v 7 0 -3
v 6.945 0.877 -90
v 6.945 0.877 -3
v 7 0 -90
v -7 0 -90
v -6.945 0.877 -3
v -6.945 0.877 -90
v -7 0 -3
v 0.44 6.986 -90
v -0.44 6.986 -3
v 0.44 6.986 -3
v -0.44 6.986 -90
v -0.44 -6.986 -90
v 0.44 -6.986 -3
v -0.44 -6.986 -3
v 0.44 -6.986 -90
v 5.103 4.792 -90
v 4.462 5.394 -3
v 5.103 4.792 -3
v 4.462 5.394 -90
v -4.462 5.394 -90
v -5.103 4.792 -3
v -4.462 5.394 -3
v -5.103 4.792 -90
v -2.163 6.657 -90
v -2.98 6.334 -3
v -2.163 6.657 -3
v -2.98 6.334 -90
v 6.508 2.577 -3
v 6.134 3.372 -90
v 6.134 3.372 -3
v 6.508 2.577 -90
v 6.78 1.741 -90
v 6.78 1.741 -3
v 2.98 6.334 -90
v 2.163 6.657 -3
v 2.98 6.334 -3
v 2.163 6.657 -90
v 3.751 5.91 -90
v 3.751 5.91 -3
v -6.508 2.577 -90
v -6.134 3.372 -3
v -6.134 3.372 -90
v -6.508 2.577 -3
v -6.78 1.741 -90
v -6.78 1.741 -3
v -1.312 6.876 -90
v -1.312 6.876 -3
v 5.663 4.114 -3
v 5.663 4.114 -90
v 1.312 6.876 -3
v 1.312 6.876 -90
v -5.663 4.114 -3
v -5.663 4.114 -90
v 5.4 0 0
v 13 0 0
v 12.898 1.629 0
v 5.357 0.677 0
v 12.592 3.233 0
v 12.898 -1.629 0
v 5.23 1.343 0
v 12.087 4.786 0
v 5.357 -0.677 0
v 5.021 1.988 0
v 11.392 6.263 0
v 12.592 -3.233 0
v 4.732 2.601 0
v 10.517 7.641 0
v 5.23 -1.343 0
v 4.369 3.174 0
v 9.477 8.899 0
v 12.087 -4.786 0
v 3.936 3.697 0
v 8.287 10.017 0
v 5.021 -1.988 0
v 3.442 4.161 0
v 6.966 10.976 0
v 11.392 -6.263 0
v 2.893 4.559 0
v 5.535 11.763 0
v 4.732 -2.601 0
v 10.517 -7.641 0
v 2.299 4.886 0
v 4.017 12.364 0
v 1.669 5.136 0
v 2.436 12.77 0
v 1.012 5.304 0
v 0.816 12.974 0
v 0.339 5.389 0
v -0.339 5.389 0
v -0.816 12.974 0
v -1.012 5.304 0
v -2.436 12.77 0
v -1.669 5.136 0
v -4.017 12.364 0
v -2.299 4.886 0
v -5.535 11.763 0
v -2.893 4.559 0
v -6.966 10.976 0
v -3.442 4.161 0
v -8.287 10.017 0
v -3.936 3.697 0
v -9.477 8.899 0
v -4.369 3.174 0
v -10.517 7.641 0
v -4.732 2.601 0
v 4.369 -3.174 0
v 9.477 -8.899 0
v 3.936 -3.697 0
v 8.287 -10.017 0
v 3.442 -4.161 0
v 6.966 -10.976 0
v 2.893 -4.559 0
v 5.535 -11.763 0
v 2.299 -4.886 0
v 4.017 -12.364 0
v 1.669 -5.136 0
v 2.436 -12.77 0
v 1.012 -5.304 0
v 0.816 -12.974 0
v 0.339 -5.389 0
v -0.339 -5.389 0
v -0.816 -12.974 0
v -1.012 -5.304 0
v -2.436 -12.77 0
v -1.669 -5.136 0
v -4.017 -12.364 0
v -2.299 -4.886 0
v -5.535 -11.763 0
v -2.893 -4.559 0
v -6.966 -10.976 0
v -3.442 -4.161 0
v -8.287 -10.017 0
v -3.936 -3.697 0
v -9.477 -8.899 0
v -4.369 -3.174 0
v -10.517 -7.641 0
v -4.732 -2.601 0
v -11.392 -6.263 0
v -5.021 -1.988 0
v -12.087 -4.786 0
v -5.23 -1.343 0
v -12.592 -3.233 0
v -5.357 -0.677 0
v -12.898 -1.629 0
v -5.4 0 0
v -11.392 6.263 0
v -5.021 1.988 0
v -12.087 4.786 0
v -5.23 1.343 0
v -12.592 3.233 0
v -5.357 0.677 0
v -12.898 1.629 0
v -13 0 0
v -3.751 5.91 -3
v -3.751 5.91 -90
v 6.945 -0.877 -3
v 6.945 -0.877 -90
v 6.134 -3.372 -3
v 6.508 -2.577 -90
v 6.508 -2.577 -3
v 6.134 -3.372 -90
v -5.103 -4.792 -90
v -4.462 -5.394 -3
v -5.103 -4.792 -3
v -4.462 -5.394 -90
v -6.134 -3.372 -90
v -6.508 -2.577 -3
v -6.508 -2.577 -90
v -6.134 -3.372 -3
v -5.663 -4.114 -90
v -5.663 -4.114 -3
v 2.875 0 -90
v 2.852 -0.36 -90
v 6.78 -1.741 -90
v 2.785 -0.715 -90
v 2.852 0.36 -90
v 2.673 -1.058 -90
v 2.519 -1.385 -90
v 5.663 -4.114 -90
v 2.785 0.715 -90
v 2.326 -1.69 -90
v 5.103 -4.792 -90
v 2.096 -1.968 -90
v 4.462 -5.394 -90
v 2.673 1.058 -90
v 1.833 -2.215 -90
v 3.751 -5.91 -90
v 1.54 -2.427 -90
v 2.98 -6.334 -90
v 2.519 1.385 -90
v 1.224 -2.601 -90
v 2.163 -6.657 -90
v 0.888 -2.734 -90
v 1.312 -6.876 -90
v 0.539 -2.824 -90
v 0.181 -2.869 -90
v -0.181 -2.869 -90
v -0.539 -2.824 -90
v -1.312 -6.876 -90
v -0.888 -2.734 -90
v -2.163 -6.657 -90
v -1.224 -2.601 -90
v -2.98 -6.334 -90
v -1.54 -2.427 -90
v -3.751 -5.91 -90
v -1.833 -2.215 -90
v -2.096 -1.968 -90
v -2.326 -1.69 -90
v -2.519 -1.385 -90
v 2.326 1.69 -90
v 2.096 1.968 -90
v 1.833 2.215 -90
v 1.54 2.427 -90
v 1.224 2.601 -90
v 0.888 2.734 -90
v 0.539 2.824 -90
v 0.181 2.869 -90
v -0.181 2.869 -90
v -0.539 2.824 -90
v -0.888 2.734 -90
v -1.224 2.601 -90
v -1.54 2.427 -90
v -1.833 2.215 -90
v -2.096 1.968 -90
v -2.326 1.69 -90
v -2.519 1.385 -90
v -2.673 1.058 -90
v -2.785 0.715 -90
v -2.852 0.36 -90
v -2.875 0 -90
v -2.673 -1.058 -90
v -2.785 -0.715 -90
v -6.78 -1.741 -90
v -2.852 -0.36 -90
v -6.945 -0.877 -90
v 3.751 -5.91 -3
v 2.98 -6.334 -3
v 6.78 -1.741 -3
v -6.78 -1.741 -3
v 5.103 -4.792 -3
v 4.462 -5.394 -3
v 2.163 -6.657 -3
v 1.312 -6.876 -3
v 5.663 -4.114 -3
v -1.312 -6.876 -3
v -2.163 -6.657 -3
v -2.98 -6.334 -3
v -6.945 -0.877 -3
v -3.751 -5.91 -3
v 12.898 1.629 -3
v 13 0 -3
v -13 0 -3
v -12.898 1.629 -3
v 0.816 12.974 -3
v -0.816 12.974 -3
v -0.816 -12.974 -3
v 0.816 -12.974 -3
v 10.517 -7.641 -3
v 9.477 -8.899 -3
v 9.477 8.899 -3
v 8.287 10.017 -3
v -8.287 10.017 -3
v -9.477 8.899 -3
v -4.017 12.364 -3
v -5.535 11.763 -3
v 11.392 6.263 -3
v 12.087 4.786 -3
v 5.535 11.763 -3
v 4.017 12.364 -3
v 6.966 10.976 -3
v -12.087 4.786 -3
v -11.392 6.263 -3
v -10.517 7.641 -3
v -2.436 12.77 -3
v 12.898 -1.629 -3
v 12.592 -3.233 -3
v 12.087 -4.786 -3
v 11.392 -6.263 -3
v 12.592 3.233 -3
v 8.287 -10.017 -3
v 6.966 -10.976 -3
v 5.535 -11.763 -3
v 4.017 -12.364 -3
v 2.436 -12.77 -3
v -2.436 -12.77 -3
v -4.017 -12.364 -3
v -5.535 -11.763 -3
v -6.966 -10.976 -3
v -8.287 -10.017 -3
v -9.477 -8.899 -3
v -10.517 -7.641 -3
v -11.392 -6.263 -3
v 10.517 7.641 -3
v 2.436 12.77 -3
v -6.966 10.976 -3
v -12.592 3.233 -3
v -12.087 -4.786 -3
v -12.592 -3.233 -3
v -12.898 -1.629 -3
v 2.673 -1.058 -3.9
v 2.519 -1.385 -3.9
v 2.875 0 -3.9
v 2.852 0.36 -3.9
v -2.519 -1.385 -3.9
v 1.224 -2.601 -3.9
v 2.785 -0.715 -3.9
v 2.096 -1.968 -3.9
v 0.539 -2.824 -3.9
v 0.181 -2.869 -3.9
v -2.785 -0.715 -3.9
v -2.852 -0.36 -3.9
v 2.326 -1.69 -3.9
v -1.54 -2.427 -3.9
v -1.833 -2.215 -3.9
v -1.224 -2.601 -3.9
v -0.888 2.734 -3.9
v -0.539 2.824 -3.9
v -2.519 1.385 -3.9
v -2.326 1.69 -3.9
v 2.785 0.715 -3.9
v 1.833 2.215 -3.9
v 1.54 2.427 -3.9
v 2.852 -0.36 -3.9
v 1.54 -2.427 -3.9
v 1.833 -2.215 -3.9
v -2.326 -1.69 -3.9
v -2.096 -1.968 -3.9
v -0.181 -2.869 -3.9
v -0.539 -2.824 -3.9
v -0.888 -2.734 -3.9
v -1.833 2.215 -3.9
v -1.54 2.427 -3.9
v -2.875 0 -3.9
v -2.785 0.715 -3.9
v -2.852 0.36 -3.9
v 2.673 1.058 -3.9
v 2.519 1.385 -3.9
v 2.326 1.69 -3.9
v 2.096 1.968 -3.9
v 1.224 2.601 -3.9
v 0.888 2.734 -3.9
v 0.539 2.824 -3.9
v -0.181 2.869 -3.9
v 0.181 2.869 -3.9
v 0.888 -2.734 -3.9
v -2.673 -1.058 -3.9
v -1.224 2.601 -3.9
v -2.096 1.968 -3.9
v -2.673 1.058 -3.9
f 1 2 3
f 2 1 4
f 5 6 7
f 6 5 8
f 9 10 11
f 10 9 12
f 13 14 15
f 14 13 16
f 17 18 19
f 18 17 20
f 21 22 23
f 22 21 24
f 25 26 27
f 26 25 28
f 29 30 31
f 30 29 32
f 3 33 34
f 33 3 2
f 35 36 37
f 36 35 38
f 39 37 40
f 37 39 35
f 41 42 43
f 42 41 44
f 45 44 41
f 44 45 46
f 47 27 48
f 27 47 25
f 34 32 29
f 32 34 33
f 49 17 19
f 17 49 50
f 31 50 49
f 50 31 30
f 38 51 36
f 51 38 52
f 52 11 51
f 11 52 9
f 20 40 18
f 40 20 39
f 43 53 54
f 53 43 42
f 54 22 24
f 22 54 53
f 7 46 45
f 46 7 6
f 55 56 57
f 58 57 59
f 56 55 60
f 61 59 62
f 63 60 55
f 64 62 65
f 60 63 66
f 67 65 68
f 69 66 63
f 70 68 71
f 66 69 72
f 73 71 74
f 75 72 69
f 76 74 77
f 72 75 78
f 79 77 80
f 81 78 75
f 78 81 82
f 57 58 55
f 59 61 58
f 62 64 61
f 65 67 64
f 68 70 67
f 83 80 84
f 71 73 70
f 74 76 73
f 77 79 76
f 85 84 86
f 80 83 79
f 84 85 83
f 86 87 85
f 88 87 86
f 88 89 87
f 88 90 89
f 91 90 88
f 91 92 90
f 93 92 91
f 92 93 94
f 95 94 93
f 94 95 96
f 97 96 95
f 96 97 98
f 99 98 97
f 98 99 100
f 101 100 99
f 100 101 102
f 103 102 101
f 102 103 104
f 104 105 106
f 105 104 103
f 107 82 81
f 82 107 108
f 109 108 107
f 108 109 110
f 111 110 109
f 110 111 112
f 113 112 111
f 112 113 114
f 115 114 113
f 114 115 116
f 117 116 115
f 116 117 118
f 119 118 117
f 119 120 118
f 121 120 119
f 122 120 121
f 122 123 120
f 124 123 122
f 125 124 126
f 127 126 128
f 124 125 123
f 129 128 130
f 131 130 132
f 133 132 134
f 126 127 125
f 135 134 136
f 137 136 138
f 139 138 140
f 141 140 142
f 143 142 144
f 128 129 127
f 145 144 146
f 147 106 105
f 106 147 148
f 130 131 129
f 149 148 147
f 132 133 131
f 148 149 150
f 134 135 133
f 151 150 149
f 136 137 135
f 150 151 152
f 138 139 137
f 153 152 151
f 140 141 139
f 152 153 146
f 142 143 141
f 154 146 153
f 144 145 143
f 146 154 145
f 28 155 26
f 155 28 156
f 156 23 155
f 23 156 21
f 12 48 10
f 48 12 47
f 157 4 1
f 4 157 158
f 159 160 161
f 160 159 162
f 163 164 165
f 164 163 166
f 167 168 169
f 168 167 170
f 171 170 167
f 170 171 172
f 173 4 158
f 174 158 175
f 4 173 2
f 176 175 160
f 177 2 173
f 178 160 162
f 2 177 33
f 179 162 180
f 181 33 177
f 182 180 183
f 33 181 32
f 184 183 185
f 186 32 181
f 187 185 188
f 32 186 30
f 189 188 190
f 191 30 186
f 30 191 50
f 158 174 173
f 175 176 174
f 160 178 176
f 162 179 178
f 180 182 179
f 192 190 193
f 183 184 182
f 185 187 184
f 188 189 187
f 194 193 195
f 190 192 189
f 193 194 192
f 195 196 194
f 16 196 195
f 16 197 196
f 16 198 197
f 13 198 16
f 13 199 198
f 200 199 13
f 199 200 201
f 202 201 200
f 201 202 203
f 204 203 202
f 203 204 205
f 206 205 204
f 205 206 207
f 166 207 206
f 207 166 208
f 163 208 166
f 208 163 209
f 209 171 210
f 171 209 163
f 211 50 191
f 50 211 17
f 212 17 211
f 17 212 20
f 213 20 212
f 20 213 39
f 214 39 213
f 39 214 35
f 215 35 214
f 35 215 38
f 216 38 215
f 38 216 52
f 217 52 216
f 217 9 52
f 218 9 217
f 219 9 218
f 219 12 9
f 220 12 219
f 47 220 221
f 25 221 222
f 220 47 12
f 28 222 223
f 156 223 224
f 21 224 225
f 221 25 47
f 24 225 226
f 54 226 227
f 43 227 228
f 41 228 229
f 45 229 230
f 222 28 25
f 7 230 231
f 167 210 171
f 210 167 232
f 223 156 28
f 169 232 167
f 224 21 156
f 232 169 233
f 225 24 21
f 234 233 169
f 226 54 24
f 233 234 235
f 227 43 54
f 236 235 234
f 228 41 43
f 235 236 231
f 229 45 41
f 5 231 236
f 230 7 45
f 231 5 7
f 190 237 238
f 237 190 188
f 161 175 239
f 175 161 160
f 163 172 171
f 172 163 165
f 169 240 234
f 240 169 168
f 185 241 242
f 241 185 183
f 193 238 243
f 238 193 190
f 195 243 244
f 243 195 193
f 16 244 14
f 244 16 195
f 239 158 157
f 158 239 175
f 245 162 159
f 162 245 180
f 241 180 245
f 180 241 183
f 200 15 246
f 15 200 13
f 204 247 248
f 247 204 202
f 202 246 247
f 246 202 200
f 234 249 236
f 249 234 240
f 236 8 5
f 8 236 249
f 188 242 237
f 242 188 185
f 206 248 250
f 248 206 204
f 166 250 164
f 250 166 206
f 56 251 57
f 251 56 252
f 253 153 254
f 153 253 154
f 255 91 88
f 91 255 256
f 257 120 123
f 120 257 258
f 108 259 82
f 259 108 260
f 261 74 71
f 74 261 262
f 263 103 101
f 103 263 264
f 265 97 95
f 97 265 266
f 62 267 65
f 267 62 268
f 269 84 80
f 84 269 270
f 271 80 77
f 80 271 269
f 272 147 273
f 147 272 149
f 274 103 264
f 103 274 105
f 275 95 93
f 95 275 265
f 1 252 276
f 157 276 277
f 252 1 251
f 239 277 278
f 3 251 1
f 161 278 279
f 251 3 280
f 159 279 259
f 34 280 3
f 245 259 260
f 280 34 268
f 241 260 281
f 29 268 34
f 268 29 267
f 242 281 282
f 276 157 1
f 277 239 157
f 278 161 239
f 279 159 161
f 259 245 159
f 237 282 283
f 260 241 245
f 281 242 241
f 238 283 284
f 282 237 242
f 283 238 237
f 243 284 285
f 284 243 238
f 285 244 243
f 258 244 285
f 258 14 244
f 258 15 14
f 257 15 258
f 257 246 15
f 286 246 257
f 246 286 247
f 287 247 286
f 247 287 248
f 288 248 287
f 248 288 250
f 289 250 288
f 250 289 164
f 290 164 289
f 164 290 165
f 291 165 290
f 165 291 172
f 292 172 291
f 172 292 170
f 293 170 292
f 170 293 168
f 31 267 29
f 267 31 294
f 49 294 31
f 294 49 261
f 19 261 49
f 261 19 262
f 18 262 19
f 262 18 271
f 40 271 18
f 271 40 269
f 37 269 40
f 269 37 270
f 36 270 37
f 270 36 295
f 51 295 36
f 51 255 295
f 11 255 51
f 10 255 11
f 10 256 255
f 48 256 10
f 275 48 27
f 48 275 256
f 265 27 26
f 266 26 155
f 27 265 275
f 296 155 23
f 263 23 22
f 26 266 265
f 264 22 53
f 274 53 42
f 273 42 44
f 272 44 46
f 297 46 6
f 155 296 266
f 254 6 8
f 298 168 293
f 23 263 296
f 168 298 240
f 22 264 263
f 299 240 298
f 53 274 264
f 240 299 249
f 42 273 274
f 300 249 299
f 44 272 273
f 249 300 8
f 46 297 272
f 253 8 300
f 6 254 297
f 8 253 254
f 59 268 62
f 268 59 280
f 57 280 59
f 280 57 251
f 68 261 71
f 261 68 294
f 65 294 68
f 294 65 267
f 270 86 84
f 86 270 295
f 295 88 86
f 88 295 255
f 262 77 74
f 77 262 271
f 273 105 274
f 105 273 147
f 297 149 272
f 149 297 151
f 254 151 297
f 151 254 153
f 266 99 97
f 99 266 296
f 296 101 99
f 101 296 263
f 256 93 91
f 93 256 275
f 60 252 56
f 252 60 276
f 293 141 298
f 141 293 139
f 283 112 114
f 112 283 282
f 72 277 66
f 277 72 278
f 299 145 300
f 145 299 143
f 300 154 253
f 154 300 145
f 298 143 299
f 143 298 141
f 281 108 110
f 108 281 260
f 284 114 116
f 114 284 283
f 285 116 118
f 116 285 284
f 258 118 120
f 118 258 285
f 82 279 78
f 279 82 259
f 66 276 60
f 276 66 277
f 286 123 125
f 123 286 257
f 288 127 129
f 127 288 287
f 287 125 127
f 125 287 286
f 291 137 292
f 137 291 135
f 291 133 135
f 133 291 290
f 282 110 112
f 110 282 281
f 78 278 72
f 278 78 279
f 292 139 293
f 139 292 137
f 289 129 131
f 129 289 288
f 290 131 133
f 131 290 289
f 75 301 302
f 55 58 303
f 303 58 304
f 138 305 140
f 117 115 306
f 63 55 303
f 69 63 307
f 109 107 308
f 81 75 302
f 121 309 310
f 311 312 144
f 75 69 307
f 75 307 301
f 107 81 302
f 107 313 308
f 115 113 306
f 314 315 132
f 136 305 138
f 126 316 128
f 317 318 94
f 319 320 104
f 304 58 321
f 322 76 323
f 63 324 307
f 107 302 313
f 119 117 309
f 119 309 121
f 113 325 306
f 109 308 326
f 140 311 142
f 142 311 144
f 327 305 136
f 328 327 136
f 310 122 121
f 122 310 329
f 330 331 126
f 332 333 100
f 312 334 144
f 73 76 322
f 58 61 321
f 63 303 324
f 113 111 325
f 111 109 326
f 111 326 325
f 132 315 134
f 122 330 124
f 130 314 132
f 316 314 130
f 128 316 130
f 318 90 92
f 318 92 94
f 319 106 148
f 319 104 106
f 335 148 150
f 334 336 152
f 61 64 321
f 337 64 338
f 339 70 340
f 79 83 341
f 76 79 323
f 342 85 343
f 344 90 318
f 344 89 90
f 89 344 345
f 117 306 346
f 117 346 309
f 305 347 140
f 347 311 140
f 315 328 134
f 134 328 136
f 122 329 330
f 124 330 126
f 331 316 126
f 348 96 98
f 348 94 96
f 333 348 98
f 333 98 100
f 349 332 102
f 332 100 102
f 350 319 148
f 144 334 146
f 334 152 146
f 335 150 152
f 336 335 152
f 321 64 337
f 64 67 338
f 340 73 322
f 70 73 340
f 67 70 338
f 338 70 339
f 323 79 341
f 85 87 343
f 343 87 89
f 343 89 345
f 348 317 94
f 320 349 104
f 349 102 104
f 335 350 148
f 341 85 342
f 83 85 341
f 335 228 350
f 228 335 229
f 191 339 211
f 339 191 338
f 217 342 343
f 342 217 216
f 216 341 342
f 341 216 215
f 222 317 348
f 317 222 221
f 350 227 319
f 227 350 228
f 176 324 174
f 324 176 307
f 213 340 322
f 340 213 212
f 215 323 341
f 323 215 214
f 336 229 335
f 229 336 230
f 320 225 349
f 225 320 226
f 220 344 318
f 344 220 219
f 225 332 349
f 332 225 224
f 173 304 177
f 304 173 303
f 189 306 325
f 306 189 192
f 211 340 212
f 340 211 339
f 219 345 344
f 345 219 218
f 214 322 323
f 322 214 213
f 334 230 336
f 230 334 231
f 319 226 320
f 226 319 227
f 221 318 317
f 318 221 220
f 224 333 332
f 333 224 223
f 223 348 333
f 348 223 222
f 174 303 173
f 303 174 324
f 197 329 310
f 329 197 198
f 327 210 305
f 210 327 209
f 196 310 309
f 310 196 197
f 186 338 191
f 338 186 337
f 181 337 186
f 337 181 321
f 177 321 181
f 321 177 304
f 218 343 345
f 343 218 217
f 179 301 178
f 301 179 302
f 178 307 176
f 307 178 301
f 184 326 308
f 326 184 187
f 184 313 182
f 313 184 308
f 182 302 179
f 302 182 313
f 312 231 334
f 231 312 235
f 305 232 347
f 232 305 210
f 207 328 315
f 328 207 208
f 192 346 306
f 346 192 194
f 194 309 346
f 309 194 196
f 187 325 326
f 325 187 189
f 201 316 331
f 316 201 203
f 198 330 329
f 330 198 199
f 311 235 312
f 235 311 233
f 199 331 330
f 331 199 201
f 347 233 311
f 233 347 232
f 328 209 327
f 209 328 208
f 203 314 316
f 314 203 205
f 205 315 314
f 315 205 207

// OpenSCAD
$fn = 50;


difference() {
	union() {
		translate(v = [0, 0, -90.0000000000]) {
			cylinder(h = 90, r = 7.0000000000);
		}
		translate(v = [0, 0, -3.0000000000]) {
			cylinder(h = 3, r = 13.0000000000);
		}
	}
	union() {
		translate(v = [0, 0, 0]) {
			rotate(a = [0, 0, 0]) {
				difference() {
					union() {
						#translate(v = [0, 0, -90.0000000000]) {
							cylinder(h = 90, r = 2.6000000000);
						}
						#translate(v = [0, 0, -3.9000000000]) {
							cylinder(h = 3.9000000000, r1 = 2.8750000000, r2 = 5.4000000000);
						}
						#translate(v = [0, 0, -90.0000000000]) {
							cylinder(h = 90, r = 2.8750000000);
						}
						#translate(v = [0, 0, -90.0000000000]) {
							cylinder(h = 90, r = 2.6000000000);
						}
					}
					union();
				}
			}
		}
	}
}
